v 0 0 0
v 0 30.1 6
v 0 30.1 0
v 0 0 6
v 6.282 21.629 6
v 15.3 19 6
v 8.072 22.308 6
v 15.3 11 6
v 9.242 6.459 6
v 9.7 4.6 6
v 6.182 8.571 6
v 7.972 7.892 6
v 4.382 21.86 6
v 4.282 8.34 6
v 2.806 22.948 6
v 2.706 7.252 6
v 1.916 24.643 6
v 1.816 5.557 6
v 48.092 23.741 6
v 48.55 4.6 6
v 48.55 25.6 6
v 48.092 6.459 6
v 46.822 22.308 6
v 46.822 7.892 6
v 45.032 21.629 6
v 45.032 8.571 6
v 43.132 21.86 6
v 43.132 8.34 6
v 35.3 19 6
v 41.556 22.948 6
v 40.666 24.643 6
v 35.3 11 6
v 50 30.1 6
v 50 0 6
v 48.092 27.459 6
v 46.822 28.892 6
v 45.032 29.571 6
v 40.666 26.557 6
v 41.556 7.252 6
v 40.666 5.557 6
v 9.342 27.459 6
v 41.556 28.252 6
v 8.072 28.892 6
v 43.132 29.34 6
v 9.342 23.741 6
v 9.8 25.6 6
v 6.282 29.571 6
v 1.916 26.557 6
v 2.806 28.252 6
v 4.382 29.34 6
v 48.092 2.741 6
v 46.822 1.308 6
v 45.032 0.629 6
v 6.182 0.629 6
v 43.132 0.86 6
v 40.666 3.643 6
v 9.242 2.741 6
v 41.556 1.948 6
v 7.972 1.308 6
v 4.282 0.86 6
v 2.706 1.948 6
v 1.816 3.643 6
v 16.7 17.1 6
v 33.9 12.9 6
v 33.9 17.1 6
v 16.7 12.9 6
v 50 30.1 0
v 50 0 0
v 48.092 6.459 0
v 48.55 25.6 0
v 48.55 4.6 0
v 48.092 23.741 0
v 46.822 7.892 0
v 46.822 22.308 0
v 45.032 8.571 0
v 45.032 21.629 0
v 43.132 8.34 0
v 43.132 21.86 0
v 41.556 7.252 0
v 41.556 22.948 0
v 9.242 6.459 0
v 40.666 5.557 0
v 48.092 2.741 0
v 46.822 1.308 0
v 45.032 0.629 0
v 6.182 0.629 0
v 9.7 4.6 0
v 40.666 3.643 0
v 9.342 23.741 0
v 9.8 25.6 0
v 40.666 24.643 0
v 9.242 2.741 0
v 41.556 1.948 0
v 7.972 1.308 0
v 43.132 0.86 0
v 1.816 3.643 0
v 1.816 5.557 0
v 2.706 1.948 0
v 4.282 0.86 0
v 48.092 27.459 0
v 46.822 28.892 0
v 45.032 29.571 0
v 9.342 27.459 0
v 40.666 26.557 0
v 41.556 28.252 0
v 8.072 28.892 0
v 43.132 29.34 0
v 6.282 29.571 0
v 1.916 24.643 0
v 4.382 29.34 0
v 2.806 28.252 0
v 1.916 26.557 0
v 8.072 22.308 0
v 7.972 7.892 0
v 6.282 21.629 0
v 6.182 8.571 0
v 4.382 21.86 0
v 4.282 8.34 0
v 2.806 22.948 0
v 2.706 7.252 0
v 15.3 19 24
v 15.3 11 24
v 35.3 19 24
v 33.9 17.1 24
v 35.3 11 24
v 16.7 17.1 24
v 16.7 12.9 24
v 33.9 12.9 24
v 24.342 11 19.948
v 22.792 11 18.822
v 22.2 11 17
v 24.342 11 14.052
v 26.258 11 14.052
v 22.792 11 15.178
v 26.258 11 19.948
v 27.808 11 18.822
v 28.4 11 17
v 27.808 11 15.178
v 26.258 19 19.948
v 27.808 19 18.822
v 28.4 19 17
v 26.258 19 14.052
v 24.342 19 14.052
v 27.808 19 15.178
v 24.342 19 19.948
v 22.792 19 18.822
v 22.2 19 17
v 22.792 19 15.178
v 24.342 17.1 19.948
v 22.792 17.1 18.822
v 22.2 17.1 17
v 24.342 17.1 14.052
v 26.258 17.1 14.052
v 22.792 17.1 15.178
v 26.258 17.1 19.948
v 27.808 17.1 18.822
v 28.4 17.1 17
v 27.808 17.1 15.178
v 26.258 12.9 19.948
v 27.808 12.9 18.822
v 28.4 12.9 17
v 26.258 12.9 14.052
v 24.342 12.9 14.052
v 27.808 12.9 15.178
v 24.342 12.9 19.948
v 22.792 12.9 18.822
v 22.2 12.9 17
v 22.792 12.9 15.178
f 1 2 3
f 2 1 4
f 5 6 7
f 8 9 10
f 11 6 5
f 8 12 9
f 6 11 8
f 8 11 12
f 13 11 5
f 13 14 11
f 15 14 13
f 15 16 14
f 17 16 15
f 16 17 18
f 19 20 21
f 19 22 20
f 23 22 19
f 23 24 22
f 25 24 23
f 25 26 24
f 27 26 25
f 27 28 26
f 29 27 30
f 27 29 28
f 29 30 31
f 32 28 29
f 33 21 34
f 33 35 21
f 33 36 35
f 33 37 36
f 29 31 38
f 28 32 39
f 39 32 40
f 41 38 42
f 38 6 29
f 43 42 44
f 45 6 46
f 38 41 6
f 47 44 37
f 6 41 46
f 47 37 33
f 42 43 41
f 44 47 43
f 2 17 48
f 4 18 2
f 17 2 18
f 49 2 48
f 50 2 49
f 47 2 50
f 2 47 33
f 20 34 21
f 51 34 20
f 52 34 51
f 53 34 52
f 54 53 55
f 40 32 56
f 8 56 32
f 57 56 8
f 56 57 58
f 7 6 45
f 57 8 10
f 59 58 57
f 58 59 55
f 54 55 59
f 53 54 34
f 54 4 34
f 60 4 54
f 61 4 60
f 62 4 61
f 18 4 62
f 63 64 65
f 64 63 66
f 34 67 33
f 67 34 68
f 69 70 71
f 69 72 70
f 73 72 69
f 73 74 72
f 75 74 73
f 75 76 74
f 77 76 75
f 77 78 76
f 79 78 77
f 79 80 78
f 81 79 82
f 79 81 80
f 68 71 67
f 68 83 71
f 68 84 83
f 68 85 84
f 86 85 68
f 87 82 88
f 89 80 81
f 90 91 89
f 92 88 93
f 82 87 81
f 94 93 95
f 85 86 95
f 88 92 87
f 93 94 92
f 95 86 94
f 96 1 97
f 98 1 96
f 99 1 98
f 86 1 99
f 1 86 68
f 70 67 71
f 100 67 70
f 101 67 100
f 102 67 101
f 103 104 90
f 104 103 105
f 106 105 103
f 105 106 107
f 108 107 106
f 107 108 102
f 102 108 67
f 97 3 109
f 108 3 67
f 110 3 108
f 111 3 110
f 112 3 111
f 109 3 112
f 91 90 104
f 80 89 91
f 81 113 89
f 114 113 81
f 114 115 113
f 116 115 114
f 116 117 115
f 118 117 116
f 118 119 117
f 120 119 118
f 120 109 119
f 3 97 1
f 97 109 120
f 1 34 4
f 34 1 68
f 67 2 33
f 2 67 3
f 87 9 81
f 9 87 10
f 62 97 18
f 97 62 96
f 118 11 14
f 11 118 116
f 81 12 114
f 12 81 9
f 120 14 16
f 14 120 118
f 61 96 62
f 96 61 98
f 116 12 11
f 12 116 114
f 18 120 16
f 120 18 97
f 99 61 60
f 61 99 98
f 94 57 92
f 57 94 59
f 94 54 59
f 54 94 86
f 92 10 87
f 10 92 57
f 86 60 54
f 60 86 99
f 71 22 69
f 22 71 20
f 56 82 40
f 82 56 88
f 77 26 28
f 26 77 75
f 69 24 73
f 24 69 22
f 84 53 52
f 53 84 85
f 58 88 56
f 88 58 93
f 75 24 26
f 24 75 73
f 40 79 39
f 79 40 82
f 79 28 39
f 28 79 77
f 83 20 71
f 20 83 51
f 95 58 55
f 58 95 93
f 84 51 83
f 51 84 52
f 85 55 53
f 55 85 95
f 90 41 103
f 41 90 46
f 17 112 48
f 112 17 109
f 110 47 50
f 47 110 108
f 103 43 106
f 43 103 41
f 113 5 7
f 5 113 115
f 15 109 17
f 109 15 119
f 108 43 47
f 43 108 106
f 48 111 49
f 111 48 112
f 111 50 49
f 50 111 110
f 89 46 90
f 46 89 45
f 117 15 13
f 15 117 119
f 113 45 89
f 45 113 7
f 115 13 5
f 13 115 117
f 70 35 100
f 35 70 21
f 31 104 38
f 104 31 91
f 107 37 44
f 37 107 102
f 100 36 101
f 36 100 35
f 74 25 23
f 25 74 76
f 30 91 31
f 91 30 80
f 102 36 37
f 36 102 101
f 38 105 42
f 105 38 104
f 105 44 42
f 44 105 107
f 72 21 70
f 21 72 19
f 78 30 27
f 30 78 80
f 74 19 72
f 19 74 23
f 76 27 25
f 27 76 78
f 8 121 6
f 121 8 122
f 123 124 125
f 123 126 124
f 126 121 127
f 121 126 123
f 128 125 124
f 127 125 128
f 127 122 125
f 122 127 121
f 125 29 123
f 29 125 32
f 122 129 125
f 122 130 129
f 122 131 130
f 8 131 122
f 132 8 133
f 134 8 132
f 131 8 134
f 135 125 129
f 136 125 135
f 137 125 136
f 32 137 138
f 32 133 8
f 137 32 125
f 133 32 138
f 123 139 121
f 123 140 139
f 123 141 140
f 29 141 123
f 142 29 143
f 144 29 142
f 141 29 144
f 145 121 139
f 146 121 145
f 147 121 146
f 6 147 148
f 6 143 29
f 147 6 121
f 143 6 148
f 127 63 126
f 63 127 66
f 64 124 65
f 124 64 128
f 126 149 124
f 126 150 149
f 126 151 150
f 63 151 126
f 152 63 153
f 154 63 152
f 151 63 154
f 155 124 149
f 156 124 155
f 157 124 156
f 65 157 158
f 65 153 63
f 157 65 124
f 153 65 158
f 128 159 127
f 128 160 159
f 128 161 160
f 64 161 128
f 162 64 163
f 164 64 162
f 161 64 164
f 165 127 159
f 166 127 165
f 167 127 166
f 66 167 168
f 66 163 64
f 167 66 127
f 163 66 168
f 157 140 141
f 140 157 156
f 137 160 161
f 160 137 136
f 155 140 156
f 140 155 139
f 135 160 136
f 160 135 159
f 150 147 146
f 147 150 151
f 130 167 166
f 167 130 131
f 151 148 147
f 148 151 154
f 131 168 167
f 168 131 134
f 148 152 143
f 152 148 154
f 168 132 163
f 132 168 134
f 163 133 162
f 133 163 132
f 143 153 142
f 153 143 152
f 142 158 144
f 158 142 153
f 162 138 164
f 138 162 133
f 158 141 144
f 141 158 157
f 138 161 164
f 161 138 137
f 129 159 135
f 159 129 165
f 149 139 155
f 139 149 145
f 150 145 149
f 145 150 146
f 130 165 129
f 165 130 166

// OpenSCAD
//base
difference(){
cube([50,30.1,6]);
#translate([1.7+4,0.6+4,0])cylinder(h=8, r=4);
#translate([50-1.45-4,0.6+4,0])cylinder(h=8, r=4);
#translate([1.8+4,30.1-0.5-4,0])cylinder(h=8, r=4);
#translate([50-1.45-4,30.1-0.5-4,0])cylinder(h=8, r=4);
}
b=4;
c=5;
w=7.2;
//apoio inferior com aberturas
difference(){translate([32.5-w,20-c,18-b])
    // cubo principal
        cube([20,8,20], center=true);
    // abertura interior
    #translate([32.5-w,20-c,18-b])
        cube([17.2,4.2,20], center=true);
    // abertura para o prego
   #translate([32.5-w,24-c,21-b])rotate(a=[90,0,0])
        cylinder(h=8, r=3.1 );}
//
